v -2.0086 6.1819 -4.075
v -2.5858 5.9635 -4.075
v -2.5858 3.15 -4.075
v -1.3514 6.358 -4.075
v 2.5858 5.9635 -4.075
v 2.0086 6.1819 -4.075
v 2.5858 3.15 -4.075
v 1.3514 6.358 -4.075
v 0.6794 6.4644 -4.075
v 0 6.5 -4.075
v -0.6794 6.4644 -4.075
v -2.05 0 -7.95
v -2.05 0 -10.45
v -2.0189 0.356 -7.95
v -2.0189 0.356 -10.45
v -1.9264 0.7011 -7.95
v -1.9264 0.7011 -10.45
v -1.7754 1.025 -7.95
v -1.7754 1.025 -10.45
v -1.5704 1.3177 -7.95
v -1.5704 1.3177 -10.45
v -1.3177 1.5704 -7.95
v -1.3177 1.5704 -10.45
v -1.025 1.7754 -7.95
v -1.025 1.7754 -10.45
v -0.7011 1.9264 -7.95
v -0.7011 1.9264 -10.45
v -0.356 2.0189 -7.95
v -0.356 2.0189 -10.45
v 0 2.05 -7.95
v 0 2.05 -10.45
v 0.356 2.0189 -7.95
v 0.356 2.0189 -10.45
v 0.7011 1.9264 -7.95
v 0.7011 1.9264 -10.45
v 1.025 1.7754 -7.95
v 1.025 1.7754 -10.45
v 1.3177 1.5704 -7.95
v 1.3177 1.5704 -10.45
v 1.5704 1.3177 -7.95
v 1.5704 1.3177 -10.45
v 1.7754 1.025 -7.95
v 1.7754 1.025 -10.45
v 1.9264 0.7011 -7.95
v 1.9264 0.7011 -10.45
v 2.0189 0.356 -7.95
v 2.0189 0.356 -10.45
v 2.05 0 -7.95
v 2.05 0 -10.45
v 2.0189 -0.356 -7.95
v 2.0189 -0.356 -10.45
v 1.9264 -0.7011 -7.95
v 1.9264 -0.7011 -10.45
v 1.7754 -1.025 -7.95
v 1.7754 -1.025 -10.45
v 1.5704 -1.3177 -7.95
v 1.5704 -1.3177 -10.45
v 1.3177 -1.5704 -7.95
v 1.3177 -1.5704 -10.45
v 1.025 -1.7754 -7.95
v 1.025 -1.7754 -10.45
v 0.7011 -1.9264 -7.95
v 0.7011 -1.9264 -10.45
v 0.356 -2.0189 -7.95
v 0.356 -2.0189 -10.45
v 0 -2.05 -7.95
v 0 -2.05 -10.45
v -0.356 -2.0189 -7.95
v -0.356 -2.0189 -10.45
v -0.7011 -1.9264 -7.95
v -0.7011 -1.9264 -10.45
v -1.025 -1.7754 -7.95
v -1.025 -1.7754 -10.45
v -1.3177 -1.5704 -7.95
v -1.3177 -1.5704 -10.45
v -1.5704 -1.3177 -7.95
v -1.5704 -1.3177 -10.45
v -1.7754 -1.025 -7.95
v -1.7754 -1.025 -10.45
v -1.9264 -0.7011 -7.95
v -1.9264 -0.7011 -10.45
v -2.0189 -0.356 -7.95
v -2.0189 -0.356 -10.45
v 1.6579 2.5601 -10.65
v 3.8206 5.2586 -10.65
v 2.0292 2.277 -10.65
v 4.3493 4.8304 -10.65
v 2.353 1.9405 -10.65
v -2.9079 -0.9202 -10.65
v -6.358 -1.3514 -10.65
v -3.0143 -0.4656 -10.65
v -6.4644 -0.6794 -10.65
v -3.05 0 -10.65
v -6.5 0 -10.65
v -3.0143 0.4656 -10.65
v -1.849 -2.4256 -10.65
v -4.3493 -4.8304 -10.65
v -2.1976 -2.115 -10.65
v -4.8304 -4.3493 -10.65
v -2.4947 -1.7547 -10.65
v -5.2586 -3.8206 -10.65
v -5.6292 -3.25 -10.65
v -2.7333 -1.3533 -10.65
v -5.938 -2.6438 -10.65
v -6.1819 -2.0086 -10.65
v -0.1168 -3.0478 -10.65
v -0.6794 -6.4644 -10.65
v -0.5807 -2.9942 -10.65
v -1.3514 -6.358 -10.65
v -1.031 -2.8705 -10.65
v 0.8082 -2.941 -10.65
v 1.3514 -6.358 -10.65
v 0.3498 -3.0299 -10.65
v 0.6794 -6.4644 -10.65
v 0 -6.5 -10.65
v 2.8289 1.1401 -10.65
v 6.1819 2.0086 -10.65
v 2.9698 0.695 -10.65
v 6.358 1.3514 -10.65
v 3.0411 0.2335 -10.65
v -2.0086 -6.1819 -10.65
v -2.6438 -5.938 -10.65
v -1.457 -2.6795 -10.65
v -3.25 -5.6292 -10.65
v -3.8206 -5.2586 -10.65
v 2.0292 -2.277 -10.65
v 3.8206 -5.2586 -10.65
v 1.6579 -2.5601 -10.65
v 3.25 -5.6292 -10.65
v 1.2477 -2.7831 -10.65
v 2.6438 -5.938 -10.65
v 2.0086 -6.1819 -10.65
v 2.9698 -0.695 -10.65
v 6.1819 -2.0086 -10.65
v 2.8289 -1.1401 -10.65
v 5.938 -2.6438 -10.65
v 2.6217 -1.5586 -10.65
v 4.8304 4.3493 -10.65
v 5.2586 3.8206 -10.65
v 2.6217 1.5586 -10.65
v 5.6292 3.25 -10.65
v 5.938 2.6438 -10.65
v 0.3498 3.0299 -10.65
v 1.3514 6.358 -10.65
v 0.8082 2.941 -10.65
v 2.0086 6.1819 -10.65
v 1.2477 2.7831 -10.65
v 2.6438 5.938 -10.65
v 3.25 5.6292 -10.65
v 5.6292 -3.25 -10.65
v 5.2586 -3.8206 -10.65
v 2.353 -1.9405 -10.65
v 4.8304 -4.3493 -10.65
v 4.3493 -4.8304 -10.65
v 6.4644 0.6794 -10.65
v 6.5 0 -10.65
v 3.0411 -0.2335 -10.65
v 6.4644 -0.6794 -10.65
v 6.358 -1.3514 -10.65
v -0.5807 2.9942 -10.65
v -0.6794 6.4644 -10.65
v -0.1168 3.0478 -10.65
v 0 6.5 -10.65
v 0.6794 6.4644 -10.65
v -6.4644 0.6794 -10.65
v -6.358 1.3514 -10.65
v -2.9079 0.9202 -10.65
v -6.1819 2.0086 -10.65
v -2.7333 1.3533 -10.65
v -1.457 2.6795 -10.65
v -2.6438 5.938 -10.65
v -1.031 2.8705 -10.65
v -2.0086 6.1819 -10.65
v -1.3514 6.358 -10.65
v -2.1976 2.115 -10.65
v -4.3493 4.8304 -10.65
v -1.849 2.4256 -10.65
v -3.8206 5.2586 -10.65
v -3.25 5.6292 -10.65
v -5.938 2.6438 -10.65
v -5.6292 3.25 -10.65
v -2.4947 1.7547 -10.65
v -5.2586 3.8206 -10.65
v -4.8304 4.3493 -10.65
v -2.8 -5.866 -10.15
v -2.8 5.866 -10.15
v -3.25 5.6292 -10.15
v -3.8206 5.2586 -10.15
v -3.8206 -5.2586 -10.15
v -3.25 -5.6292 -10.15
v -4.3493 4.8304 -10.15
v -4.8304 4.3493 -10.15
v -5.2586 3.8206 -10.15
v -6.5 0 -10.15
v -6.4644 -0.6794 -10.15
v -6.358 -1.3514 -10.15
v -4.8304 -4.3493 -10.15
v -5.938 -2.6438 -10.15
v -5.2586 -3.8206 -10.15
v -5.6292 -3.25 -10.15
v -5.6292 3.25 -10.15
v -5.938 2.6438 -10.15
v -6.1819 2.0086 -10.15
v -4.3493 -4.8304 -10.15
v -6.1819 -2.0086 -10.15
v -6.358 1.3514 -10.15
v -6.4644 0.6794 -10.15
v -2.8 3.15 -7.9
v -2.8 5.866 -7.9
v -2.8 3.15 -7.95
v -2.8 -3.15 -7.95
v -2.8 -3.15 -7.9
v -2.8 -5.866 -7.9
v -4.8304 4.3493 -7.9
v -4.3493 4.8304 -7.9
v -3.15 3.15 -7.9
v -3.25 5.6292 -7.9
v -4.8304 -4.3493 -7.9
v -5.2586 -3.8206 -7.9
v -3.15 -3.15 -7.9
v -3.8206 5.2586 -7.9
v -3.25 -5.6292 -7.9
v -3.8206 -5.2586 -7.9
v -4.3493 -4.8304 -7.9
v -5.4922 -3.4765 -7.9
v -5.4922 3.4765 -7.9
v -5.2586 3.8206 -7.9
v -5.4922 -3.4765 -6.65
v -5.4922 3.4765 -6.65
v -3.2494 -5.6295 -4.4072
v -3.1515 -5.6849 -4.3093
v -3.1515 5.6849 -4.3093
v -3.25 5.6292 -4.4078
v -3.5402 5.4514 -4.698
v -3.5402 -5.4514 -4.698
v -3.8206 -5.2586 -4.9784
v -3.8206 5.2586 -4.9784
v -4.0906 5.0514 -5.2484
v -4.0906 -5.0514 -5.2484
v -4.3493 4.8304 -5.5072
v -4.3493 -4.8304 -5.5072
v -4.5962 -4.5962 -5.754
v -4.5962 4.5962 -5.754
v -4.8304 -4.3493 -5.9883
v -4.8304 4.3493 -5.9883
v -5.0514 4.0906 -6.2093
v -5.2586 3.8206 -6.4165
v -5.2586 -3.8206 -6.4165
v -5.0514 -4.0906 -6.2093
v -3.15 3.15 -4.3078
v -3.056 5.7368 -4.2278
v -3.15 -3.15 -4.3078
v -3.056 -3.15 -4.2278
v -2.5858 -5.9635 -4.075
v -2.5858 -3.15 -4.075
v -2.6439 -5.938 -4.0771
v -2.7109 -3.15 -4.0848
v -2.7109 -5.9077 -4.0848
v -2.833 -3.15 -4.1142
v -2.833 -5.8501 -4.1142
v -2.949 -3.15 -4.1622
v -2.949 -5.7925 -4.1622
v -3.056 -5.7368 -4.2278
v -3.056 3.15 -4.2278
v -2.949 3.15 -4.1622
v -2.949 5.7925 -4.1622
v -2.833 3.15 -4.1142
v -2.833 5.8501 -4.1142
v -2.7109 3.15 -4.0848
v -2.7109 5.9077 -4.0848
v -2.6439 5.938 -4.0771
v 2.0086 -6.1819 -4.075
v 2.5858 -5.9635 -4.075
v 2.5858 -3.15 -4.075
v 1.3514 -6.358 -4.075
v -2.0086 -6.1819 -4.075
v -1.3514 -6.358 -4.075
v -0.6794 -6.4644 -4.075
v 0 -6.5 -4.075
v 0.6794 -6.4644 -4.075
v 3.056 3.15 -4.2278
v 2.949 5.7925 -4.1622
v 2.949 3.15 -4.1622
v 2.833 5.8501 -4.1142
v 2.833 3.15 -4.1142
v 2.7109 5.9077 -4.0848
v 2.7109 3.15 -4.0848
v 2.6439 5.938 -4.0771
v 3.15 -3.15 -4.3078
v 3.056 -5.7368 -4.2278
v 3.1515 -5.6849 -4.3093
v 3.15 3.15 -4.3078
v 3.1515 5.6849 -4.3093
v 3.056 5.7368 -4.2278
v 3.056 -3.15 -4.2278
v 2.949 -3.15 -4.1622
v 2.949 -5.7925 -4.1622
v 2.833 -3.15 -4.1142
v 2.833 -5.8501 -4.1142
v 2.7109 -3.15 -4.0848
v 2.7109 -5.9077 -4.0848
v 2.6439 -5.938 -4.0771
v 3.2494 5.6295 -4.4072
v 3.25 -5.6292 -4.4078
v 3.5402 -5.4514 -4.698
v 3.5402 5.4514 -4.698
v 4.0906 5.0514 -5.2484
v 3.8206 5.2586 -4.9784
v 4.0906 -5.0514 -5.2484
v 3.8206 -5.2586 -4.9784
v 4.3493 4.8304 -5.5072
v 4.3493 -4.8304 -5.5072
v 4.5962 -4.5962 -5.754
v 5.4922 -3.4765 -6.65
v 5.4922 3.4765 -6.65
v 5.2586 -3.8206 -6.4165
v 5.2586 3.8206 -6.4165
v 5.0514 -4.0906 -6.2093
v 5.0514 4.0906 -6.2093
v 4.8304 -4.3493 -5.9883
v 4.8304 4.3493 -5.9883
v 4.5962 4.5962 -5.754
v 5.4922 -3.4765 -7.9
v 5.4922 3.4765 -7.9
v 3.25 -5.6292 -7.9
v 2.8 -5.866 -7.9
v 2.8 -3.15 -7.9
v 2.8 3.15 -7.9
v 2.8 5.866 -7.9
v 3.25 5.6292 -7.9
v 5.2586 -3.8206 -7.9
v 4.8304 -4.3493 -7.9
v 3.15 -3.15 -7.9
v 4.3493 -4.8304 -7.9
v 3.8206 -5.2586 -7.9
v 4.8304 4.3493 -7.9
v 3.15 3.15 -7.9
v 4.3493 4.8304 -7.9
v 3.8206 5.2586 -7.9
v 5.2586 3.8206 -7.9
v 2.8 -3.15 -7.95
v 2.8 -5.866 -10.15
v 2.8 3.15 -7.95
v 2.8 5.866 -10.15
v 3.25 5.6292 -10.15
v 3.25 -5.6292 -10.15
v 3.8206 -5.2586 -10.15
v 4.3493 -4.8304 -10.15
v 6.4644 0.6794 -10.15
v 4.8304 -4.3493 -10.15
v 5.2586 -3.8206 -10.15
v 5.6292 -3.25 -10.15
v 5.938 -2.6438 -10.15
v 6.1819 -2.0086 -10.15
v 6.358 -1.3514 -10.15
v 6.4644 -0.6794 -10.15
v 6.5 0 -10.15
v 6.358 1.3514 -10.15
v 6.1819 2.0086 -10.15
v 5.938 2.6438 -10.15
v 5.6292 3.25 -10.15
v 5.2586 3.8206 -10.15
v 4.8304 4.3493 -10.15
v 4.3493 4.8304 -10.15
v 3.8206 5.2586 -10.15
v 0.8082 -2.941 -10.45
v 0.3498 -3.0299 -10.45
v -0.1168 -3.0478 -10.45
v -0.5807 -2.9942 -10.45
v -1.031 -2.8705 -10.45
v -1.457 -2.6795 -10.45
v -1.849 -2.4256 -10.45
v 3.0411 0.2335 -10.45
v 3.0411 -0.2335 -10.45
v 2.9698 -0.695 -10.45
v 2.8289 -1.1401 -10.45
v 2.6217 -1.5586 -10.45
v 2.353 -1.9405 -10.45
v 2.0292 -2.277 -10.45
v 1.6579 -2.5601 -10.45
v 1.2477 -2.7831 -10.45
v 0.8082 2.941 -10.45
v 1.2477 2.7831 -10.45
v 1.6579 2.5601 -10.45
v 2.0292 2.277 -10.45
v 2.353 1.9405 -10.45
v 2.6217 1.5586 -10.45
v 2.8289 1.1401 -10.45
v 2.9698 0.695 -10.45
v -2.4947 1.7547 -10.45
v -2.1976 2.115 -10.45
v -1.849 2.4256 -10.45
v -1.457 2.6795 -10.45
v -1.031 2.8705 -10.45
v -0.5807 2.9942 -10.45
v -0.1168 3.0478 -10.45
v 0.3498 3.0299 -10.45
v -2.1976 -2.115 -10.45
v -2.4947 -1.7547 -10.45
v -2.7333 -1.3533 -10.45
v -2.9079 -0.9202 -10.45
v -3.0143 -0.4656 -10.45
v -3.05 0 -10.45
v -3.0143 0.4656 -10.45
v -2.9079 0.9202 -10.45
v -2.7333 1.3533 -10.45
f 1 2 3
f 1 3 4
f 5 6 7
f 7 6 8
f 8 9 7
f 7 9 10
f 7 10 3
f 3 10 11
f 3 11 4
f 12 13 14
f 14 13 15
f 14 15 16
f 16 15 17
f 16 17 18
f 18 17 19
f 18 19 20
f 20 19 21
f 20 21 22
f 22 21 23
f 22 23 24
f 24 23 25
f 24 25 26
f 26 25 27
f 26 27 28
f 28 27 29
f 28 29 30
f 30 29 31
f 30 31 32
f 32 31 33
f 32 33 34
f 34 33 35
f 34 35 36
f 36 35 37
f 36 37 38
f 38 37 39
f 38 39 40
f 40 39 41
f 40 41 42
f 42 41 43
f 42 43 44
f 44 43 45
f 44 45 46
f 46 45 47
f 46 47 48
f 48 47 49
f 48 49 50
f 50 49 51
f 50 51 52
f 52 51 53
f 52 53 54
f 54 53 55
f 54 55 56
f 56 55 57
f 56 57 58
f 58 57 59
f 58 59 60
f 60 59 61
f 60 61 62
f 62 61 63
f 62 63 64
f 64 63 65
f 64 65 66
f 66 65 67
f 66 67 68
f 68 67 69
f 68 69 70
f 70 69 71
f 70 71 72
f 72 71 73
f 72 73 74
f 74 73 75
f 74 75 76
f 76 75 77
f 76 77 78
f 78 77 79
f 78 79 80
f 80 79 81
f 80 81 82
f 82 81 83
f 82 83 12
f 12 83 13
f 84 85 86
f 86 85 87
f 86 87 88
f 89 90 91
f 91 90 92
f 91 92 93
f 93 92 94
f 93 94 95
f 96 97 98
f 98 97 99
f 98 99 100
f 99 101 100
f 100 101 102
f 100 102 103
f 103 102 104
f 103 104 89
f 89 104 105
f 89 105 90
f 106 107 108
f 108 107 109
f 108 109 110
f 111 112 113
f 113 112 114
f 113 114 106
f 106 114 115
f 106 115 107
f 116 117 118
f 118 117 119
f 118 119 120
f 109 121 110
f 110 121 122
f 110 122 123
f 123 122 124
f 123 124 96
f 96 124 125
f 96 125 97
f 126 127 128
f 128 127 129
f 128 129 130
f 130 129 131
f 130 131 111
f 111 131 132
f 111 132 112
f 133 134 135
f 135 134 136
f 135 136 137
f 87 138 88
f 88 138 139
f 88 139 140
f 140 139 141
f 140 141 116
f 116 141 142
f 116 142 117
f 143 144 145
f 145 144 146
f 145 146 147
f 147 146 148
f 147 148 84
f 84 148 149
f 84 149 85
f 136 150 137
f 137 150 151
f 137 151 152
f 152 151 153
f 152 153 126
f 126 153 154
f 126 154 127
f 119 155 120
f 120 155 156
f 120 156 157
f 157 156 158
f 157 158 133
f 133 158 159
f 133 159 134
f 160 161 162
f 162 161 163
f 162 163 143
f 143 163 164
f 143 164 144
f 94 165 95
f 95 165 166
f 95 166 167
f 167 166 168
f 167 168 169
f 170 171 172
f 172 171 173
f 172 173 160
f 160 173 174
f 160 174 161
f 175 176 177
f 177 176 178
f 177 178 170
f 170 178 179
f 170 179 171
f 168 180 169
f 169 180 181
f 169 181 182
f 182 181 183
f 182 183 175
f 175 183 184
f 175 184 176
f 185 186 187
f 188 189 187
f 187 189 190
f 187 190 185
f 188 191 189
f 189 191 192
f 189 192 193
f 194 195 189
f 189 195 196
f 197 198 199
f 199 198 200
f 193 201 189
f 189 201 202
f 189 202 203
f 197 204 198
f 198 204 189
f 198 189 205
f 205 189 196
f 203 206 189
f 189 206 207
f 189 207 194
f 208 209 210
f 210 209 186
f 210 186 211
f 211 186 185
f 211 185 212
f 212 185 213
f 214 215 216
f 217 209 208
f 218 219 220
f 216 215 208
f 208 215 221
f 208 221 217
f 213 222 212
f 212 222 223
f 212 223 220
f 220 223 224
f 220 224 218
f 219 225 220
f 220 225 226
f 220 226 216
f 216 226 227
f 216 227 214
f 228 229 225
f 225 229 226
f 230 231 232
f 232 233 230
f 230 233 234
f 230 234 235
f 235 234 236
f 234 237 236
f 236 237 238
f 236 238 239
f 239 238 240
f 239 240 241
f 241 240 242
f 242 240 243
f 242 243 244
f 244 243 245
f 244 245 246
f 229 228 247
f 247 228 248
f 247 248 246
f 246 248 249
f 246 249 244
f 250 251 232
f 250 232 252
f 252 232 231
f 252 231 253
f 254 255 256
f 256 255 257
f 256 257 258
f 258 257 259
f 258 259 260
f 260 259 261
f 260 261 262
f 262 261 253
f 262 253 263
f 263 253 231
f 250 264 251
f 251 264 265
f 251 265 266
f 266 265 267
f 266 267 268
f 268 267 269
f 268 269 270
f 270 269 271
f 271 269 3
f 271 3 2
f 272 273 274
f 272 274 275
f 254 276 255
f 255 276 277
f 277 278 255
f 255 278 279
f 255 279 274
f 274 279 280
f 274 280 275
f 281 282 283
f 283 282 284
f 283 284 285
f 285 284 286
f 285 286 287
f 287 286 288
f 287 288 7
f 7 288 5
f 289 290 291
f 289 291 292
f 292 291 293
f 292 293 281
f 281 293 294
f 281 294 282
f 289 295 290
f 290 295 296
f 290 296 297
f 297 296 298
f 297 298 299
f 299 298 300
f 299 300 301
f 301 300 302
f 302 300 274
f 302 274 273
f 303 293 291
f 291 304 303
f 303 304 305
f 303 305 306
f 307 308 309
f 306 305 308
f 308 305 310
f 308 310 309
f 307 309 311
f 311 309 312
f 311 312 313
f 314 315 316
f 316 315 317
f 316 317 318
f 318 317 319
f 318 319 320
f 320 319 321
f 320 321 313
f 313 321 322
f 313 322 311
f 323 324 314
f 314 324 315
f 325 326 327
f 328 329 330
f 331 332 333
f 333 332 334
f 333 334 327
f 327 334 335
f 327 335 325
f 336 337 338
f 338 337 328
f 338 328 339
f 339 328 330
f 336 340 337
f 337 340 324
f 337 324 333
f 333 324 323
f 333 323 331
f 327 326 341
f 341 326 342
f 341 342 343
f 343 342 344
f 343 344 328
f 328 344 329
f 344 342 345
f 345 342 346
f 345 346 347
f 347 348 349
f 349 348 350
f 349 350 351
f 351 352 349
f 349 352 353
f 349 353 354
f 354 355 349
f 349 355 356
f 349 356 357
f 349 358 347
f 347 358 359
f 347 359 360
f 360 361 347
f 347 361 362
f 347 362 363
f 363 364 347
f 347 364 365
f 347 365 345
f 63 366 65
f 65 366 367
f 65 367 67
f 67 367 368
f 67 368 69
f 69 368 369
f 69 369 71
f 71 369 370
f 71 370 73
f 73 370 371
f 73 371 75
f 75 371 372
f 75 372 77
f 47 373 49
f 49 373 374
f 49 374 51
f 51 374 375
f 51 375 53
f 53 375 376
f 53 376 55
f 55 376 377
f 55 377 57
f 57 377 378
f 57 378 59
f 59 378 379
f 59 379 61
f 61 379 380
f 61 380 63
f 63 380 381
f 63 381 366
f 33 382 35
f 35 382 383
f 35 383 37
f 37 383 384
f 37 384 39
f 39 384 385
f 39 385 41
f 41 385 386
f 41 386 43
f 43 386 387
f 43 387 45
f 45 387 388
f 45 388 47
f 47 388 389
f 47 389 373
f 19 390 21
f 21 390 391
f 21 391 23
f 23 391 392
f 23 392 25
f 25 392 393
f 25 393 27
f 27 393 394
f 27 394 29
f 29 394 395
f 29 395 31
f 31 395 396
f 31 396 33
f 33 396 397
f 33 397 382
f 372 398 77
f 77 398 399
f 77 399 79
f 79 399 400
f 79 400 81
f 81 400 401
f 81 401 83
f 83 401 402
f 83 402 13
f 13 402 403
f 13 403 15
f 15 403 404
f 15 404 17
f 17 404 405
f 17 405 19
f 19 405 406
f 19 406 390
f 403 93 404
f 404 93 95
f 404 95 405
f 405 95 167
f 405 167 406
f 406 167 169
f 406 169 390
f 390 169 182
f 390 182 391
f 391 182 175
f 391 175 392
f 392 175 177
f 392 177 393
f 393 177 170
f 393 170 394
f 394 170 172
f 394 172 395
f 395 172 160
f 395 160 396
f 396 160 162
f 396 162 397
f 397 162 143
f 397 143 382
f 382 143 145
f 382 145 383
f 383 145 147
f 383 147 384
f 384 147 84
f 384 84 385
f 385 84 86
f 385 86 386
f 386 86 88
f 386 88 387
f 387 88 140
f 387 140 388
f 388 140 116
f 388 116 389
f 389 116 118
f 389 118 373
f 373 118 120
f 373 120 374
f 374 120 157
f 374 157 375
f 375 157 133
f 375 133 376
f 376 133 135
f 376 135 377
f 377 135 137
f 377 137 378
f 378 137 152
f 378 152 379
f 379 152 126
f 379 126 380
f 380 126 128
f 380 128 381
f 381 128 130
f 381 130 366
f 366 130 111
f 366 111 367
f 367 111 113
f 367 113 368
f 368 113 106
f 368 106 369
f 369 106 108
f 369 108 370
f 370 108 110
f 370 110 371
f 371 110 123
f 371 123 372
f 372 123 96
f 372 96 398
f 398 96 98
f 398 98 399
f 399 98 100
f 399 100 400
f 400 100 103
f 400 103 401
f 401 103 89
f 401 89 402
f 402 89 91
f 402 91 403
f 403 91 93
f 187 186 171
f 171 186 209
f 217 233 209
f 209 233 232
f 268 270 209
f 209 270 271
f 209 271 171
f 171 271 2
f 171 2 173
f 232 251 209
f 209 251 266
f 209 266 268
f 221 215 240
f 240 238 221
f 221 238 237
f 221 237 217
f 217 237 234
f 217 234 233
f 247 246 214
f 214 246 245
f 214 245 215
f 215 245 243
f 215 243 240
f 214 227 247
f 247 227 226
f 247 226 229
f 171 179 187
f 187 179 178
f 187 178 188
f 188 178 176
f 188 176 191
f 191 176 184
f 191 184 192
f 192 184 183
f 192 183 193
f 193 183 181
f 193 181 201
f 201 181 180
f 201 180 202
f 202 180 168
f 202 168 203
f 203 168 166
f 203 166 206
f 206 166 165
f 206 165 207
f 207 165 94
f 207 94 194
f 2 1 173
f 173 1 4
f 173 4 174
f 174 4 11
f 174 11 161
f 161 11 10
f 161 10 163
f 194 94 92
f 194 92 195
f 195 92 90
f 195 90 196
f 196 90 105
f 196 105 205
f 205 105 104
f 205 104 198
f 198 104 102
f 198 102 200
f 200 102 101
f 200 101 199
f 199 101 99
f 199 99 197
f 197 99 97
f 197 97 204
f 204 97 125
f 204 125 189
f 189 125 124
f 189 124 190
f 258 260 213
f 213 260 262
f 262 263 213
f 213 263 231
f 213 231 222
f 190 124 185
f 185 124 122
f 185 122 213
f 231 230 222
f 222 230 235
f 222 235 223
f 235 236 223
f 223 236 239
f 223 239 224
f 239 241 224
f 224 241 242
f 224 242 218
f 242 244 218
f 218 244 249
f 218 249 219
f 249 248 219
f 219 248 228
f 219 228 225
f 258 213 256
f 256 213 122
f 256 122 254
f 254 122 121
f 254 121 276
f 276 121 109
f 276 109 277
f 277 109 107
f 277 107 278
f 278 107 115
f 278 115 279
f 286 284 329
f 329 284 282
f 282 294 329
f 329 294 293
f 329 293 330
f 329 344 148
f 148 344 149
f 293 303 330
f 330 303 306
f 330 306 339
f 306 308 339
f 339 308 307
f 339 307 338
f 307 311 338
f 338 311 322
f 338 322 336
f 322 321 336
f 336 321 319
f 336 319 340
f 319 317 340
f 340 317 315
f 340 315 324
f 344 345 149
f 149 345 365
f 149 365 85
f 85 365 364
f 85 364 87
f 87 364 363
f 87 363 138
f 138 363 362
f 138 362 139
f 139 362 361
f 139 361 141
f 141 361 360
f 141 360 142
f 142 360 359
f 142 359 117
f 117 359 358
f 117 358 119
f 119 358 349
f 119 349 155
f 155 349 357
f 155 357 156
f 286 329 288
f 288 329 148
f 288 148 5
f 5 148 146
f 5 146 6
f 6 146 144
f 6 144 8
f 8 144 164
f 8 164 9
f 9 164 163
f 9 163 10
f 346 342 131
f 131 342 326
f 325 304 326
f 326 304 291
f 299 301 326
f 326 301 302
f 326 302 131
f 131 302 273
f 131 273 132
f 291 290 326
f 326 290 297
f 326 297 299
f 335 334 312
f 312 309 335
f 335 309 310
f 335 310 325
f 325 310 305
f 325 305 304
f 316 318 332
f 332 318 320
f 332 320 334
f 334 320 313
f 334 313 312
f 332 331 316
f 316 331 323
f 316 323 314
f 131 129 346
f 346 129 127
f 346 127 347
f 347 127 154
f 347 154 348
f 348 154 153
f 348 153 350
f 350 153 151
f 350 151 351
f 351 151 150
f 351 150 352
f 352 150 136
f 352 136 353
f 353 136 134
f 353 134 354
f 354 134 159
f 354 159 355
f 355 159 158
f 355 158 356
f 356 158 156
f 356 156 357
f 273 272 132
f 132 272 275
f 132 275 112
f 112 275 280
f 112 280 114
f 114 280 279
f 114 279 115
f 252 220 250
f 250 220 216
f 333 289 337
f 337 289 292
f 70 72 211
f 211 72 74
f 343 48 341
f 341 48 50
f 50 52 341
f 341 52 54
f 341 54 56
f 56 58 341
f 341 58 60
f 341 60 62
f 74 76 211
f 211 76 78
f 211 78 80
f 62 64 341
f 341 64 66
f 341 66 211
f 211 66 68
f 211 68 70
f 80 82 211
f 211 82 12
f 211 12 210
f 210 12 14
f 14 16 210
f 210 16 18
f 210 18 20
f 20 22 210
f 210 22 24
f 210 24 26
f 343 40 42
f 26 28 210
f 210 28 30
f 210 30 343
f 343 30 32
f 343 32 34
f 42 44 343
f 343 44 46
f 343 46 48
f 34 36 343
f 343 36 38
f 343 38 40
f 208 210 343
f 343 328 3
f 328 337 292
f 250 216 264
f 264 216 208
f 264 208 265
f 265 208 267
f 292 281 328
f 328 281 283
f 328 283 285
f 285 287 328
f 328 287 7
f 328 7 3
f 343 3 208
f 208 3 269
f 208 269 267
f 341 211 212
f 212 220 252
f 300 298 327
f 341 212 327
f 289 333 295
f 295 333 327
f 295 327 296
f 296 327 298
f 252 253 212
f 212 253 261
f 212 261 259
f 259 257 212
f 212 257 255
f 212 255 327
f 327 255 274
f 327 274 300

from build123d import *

# Parameters (mm, degrees)
BOSS_EXTRUDE1_DEPTH = 6.5
SKETCH5_R           = 2.05
CUT_EXTRUDE2_DEPTH  = 12.301797423
SKETCH6_R           = 3.05
CUT_EXTRUDE3_DEPTH  = 0.2
FILLET1_R           = 6.5
SKETCH7_W           = 6.3
SKETCH7_H           = 6.3
CUT_EXTRUDE4_DEPTH  = 3.875


with BuildPart() as part:
    # Sketch2 → Boss-Extrude1 (new, symmetric)
    with BuildSketch(Plane(origin=(0, 0, 0), x_dir=(1, 0, 0), z_dir=(0, 1, 0))):
        with BuildLine():
            Line((-2.8, 10), (-2.8, 10.15))
            Line((-2.8, 10.15), (-6.5, 10.15))
            Line((-6.5, 10.15), (-6.5, 10.65))
            Line((-6.5, 10.65), (6.5, 10.65))
            Line((6.5, 10.65), (6.5, 10.15))
            Line((6.5, 10.15), (2.8, 10.15))
            Line((2.8, 10.15), (2.8, 10))
            Line((2.8, 10), (2.8, 7.9))
            Line((2.8, 7.9), (5.492157288, 7.9))
            Line((5.492157288, 7.9), (5.492157288, 6.65))
            Line((5.492157288, 6.65), (3.151471863, 4.309314575))
            ThreePointArc((3.151471863, 4.309314575), (2.891933184, 4.135896374), (2.585786438, 4.075))
            Line((2.585786438, 4.075), (-2.585786438, 4.075))
            ThreePointArc((-2.585786438, 4.075), (-2.891933184, 4.135896374), (-3.151471863, 4.309314575))
            Line((-3.151471863, 4.309314575), (-5.492157288, 6.65))
            Line((-5.492157288, 6.65), (-5.492157288, 7.9))
            Line((-5.492157288, 7.9), (-2.8, 7.9))
            Line((-2.8, 7.9), (-2.8, 10))
        make_face()
    extrude(amount=BOSS_EXTRUDE1_DEPTH, both=True)

    # Sketch5 → Cut-Extrude2 (cut, through all)
    with BuildSketch(Plane(origin=(0, 0, -10.65), x_dir=(-1, 0, 0), z_dir=(0, 0, -1))):
        Circle(SKETCH5_R)
    extrude(amount=-CUT_EXTRUDE2_DEPTH, mode=Mode.SUBTRACT)

    # Sketch6 → Cut-Extrude3 (cut)
    with BuildSketch(Plane(origin=(0, 0, -10.65), x_dir=(-1, 0, 0), z_dir=(0, 0, -1))):
        Circle(SKETCH6_R)
    extrude(amount=-CUT_EXTRUDE3_DEPTH, mode=Mode.SUBTRACT)

    # Fillet1
    fillet1_edges = [part.edges().sort_by_distance(p)[0] for p in [
        (6.5, -6.5, -10.4),
        (-6.5, -6.5, -10.4),
        (6.5, 6.5, -10.4),
        (-6.5, 6.5, -10.4),
    ]]
    fillet(fillet1_edges, radius=FILLET1_R - 0.0001)  # a hair under: the kernel refuses the full size

    # Sketch7 → Cut-Extrude4 (cut)
    with BuildSketch(Plane.XY.offset(-4.075)):
        Rectangle(SKETCH7_W, SKETCH7_H)
    extrude(amount=-CUT_EXTRUDE4_DEPTH, mode=Mode.SUBTRACT)


solid = part.part
